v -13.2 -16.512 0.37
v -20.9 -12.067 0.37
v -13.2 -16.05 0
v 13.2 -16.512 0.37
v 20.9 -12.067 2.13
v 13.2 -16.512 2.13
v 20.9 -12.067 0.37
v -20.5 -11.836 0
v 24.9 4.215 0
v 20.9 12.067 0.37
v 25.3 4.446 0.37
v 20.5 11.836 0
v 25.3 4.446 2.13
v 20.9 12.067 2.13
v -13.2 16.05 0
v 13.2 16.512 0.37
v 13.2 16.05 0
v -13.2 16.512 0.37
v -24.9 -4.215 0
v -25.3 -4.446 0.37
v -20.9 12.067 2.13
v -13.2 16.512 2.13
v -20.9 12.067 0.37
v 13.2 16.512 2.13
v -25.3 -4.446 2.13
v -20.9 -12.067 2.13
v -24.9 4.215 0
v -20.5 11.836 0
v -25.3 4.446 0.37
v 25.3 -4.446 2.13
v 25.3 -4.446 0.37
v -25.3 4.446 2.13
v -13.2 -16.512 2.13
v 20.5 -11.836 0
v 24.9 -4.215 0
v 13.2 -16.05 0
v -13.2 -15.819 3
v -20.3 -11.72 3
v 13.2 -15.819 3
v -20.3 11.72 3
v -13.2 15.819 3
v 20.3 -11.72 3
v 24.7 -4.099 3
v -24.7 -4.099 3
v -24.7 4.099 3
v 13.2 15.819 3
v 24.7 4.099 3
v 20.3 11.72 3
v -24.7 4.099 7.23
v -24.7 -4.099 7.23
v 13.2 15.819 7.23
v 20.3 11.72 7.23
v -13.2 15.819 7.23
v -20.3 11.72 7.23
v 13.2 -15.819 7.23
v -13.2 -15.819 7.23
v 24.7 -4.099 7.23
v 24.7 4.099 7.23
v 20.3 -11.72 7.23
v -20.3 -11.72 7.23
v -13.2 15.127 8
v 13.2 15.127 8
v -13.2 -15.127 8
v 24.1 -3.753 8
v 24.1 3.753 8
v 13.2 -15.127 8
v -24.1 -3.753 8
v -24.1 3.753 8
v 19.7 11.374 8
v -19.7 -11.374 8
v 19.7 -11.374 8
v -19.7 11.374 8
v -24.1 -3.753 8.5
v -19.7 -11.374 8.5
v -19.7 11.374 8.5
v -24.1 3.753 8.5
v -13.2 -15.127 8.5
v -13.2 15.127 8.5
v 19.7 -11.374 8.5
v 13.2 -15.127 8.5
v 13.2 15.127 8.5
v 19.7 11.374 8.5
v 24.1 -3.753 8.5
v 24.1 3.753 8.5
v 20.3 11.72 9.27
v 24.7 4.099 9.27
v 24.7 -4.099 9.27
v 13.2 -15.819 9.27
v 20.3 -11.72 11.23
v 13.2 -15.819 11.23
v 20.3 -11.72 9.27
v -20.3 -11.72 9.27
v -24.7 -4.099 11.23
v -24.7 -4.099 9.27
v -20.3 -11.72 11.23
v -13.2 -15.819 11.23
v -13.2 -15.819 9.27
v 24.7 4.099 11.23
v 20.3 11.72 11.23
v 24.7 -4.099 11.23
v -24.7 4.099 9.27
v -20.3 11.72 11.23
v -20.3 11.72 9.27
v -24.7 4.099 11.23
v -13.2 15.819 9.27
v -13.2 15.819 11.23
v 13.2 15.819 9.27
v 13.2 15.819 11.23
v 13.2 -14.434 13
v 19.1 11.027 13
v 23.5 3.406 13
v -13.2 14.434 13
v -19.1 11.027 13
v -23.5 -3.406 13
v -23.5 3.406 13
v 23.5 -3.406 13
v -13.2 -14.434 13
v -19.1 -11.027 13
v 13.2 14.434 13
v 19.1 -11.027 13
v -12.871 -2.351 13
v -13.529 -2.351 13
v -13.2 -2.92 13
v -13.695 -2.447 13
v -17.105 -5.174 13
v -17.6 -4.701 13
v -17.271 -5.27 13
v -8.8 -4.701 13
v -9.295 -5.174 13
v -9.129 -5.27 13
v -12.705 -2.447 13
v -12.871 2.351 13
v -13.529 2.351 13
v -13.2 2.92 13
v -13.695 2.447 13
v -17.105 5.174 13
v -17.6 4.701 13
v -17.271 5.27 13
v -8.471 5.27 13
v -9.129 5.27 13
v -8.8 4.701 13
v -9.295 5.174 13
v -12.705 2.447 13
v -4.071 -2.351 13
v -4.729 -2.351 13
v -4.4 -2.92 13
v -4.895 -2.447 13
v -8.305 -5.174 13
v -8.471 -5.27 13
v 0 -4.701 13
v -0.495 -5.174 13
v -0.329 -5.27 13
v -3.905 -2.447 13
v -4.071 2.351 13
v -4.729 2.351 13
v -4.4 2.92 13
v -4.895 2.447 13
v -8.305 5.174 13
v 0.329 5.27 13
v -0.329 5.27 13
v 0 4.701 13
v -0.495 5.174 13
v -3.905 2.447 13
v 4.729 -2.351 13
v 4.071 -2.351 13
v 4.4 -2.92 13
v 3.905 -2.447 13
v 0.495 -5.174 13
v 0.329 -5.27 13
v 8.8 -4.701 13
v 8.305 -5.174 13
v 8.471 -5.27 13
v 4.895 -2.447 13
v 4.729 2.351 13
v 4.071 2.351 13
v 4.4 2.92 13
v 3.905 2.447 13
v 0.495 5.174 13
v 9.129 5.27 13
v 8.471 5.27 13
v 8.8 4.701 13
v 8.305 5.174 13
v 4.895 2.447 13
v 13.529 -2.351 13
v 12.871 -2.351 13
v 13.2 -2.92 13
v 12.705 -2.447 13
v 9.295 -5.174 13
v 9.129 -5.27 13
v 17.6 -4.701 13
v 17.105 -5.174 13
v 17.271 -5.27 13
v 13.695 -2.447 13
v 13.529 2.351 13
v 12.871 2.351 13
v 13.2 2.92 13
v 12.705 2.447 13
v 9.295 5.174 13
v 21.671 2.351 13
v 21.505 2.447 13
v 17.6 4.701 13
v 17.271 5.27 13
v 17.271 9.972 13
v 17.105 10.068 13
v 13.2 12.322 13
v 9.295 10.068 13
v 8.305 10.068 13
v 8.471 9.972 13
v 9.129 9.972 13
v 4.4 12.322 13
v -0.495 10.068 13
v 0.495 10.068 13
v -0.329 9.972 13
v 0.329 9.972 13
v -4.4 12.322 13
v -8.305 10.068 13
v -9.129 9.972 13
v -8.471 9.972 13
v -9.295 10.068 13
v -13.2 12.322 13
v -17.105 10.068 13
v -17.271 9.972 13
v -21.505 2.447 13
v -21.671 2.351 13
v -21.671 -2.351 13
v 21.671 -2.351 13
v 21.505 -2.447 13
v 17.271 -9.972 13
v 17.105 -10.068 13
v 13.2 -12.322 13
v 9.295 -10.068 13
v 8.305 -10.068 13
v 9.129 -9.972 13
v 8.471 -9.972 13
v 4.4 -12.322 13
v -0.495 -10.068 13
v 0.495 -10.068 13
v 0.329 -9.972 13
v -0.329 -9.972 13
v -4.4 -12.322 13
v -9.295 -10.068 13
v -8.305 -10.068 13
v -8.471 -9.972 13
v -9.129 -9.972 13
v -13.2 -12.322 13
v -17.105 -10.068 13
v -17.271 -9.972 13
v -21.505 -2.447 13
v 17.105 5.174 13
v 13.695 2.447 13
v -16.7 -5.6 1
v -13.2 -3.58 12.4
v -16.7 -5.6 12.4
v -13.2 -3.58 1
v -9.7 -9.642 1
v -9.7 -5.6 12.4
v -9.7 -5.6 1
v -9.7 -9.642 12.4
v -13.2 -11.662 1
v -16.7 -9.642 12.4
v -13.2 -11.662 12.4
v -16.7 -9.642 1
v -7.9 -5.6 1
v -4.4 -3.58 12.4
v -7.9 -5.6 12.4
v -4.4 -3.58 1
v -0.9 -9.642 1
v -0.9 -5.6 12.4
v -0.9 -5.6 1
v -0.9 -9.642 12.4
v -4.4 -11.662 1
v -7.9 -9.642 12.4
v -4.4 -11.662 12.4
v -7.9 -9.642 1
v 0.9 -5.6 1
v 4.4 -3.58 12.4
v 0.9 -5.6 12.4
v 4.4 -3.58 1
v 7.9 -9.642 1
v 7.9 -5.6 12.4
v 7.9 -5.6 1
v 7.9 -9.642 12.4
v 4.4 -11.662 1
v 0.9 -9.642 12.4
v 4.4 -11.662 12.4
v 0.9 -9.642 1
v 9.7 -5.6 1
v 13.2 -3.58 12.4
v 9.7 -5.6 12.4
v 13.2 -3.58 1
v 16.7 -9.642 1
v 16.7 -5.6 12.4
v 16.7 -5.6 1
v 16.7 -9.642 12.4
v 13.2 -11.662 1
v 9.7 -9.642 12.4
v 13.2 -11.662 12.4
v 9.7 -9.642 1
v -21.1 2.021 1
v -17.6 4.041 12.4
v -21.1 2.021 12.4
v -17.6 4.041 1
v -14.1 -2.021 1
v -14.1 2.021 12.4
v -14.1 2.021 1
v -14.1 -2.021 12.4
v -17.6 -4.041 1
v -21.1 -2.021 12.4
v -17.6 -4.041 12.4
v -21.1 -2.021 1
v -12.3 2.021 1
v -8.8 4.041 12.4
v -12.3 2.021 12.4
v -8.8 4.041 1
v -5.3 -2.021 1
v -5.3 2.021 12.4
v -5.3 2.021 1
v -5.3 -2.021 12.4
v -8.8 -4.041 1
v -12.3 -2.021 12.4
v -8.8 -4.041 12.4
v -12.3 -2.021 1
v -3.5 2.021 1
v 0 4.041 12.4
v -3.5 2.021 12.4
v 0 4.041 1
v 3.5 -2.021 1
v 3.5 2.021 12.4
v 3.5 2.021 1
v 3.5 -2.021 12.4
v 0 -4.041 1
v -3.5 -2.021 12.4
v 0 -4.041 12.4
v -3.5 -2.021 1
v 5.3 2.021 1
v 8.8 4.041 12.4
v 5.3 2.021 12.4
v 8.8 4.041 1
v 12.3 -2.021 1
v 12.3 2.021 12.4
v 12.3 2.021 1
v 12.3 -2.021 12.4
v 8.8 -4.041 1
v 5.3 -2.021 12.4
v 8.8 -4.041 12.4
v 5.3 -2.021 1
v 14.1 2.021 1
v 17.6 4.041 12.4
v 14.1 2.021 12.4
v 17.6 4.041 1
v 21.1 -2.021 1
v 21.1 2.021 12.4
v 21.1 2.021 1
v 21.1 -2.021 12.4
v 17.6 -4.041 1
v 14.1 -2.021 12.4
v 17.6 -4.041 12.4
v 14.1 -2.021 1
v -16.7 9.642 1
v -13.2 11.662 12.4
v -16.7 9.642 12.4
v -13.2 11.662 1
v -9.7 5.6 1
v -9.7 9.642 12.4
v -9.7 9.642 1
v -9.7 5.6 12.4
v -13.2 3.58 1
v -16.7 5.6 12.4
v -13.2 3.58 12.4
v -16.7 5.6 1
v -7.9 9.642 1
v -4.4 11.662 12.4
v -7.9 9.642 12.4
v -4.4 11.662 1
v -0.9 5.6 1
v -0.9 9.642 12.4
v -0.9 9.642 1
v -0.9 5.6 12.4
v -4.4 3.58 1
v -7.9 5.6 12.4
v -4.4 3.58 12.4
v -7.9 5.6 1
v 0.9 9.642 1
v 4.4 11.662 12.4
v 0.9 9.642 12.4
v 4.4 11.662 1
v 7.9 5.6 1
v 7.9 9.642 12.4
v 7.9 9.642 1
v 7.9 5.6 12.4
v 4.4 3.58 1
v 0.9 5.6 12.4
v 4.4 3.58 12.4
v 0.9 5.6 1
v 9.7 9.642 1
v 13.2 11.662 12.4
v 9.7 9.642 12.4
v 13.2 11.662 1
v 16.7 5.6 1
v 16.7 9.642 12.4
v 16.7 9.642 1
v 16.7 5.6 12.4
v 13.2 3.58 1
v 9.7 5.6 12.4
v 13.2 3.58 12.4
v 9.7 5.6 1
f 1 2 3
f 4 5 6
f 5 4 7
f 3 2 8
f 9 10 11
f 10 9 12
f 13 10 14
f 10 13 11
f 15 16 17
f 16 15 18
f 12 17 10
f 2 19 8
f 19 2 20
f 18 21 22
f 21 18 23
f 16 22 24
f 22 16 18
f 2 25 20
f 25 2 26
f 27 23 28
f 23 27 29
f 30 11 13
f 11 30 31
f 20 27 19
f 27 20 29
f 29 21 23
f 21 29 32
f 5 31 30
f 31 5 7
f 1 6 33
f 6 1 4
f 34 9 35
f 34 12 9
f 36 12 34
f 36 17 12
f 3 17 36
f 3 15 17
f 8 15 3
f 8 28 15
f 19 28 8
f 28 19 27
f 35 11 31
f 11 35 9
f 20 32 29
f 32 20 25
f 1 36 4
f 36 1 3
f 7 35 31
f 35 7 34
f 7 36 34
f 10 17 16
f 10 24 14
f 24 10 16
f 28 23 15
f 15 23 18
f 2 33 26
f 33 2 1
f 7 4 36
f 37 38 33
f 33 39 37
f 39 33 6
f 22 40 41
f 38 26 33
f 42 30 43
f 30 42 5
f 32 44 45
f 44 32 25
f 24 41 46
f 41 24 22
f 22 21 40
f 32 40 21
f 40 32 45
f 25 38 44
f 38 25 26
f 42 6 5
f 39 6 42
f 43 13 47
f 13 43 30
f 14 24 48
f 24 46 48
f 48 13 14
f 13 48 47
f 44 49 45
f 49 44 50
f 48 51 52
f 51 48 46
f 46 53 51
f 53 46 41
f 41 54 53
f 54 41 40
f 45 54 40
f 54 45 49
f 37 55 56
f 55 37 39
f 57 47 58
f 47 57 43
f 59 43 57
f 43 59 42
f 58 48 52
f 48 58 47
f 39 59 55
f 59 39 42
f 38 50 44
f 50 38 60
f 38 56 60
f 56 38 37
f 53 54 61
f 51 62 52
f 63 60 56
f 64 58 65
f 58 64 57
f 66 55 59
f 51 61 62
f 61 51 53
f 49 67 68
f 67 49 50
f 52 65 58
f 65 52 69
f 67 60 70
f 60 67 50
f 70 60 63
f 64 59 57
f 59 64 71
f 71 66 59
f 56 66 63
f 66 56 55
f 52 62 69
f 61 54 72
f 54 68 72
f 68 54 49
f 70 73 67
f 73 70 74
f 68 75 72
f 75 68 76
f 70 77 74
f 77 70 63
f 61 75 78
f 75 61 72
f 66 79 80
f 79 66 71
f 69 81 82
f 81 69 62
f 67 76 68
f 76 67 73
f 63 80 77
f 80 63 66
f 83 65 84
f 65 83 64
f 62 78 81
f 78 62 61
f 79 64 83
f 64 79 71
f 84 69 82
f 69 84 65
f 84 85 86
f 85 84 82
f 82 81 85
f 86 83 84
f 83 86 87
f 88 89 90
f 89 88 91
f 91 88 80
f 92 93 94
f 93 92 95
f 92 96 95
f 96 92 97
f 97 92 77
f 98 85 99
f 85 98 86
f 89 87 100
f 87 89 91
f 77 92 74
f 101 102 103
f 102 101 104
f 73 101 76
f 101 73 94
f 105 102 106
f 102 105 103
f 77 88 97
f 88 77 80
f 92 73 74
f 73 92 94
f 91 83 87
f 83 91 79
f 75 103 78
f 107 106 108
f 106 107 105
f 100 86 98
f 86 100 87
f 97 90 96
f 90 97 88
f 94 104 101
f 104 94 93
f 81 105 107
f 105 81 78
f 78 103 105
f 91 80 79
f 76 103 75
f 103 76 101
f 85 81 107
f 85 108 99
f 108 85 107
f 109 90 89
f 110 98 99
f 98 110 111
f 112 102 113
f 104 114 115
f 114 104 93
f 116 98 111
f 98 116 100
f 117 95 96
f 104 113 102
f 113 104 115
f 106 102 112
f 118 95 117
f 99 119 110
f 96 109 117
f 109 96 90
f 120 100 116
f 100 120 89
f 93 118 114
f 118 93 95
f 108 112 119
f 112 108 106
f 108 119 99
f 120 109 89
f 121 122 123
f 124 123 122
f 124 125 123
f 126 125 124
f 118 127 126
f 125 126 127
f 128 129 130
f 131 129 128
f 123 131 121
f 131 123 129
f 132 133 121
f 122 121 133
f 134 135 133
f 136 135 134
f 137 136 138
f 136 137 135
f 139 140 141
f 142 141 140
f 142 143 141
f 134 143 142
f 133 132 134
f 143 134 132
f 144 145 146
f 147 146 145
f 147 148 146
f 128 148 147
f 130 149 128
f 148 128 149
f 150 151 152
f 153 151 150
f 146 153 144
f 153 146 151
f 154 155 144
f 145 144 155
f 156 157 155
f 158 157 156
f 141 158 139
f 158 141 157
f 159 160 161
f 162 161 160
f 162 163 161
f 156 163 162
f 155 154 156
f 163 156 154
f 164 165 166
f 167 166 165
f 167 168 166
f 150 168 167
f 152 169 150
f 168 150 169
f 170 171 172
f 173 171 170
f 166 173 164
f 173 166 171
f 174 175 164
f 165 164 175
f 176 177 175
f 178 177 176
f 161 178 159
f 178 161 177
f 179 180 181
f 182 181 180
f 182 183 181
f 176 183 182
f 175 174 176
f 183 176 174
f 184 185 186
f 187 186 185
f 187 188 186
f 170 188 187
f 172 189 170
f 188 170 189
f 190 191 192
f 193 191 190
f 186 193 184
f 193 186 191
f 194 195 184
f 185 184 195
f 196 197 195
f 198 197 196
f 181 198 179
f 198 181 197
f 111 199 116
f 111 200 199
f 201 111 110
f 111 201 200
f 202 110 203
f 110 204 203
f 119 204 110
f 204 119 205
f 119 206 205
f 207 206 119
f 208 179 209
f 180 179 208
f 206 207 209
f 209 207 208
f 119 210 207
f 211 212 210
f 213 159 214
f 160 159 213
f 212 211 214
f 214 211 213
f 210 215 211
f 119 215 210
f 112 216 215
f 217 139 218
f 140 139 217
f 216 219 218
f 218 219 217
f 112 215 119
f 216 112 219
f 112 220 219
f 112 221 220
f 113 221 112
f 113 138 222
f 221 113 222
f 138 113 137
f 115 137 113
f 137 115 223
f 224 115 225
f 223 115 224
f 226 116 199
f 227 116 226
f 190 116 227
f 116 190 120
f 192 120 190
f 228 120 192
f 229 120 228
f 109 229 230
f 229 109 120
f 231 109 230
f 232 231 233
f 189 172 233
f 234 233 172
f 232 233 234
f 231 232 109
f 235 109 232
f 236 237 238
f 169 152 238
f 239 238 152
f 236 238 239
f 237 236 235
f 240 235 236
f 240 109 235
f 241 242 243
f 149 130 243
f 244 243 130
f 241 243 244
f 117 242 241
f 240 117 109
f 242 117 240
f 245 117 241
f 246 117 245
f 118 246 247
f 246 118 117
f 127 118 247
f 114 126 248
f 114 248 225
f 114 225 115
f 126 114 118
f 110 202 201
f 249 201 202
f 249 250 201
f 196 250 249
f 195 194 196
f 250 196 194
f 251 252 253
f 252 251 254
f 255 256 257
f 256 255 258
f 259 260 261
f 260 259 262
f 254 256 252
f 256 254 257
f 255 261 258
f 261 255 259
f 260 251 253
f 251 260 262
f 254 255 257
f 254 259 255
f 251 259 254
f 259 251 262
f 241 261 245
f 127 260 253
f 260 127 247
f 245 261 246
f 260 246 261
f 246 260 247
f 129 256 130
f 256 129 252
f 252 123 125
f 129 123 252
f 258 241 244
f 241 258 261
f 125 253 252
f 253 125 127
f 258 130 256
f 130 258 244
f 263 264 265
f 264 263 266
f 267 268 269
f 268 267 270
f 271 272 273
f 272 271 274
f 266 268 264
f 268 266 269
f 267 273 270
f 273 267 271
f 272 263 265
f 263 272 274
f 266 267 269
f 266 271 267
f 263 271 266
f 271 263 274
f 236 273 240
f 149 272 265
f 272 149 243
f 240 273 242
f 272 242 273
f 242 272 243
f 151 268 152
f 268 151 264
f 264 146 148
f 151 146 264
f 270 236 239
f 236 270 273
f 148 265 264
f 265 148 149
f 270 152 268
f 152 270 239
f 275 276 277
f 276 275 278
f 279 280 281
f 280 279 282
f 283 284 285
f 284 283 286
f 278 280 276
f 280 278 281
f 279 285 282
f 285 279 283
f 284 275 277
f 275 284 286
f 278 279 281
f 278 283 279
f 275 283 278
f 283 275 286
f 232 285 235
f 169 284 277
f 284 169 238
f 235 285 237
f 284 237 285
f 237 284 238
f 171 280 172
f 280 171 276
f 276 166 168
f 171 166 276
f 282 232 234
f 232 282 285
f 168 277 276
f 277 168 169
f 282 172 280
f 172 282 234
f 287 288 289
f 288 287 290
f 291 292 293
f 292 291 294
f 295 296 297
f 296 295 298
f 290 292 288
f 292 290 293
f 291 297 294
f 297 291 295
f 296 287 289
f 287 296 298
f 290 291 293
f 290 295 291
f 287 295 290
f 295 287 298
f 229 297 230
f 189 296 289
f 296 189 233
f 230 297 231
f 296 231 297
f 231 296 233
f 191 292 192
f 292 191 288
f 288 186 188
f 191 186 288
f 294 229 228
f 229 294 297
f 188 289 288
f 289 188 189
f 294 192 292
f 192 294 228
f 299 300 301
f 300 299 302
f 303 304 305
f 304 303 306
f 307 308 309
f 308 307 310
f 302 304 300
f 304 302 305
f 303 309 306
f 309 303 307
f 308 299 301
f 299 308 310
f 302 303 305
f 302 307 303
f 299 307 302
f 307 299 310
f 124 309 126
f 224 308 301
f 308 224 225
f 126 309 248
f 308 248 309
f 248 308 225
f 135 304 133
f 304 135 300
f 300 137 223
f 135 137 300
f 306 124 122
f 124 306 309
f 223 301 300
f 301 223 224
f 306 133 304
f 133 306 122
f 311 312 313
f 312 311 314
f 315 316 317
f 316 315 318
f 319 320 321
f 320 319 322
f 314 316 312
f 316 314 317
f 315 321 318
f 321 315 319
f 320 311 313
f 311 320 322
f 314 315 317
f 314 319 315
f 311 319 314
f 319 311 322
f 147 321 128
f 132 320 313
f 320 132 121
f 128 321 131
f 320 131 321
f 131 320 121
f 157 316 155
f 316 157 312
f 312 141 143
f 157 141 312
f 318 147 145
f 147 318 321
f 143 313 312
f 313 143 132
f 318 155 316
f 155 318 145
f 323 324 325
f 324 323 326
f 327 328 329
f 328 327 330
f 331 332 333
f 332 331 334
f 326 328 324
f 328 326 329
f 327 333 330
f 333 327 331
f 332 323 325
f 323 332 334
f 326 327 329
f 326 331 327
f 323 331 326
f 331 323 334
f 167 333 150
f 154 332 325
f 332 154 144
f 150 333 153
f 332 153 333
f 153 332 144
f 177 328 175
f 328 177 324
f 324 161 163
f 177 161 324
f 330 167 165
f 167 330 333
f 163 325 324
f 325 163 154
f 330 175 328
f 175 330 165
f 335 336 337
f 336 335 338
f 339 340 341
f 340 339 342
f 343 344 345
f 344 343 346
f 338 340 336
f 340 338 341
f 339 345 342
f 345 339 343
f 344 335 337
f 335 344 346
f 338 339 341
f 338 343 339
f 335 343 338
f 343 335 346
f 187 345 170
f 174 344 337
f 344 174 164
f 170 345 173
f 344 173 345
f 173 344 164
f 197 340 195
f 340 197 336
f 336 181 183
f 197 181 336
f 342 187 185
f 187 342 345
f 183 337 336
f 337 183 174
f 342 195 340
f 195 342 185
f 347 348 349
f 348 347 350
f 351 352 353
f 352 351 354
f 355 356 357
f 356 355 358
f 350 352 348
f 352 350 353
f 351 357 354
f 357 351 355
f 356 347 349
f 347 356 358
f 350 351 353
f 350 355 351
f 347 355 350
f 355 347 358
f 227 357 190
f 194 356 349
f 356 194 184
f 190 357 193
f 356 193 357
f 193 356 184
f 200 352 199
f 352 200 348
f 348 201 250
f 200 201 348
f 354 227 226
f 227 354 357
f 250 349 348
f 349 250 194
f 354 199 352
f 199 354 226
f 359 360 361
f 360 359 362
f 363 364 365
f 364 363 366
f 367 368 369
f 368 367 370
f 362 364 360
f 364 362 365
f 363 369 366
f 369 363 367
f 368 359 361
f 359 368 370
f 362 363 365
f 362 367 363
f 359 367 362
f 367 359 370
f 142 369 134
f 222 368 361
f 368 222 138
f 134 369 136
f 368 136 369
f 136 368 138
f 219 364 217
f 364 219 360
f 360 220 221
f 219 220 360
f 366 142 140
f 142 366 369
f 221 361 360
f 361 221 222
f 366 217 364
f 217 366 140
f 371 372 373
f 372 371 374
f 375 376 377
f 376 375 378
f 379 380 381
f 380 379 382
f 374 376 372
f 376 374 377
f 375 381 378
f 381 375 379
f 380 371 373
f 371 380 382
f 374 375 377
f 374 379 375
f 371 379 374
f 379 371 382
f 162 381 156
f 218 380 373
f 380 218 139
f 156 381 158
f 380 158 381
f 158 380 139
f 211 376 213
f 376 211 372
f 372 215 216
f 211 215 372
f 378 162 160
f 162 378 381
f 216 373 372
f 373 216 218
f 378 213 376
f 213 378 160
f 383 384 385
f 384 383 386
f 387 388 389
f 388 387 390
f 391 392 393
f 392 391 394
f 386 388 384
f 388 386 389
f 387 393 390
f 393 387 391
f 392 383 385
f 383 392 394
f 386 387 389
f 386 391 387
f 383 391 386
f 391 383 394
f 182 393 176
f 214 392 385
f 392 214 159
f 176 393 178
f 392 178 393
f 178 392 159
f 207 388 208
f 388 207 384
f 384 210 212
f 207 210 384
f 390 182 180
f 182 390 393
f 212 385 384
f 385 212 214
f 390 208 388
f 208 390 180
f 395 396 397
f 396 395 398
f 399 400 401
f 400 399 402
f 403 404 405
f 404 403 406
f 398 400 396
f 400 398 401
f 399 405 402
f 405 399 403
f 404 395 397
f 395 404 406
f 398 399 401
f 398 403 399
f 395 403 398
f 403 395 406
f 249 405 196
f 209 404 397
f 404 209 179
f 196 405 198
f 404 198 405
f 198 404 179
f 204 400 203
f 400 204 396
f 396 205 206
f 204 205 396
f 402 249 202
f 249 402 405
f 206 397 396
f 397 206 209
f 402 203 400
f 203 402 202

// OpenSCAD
// Dense contoured hex-bit stand, v6
// 13 pockets in a compact 4-5-4 triangular/hexagonal lattice.
// Dense derivative of v3, preserving its contoured/faceted outer-wall styling.
// Designed for a 0.6 mm nozzle and support-free FDM printing.
// Units: millimetres.

$fn = 48;

// ---------- Pocket layout ----------
row_counts = [4, 5, 4];
total_pockets = 13;

hex_flat_to_flat = 7.0;       // functional pocket size
pocket_depth = 12.0;
base_thickness = 1.0;
pocket_mouth_chamfer_h = 0.6;
pocket_mouth_flat_to_flat = 8.2;

// Dense true-triangular lattice.
// 8.8 mm nearest-neighbour pitch leaves:
// - 1.8 mm between the straight 7.0 mm AF pocket sections
// - 0.6 mm between the 8.2 mm AF lead-in mouths at the top surface
pitch = 8.8;
pitch_x = pitch;
pitch_y = pitch * sqrt(3) / 2;

// ---------- Contoured body ----------
// Keep the v3 outer-wall proportions and styling while shrinking the cluster.
wall_margin = 3.0;             // five 0.6 mm nozzle widths
body_h = pocket_depth + base_thickness; // 13.0 mm

// v3-style side-wall detailing.
foot_flare = 0.6;
lower_edge_chamfer = 0.4;       // soften the bottom perimeter with a 45-degree chamfer
waist_inset = 0.6;
top_chamfer_inset = 1.2;

// Z stations for the faceted/tapered wall profile.
z0 = 0.00;
z_lower_chamfer_top = lower_edge_chamfer;
z_foot_top = 2.10;              // v5 lip was 0.90 mm; increased by 1.20 mm
z_foot_blend = 3.00;            // preserve the original 0.90 mm return-to-wall blend
z_waist_start = 7.20;
z_waist_low = 8.00;
z_waist_high = 8.50;
z_waist_end = 9.30;
z_chamfer_start = 11.20;
z_top = body_h;

// ---------- Derived ----------
hex_r = hex_flat_to_flat / sqrt(3);
mouth_hex_r = pocket_mouth_flat_to_flat / sqrt(3);
minimum_top_web = pitch - pocket_mouth_flat_to_flat;
minimum_straight_web = pitch - hex_flat_to_flat;

module pocket_hex_2d(r) {
    rotate(30)
        circle(r = r, $fn = 6);
}

module pocket_cluster_2d() {
    union() {
        for (ri = [0 : len(row_counts)-1]) {
            count = row_counts[ri];
            y = (ri - (len(row_counts)-1)/2) * pitch_y;
            for (ci = [0 : count-1]) {
                // Alternating 4/5/4 rows naturally stagger by half a pitch.
                x = (ci - (count-1)/2) * pitch_x;
                translate([x, y])
                    pocket_hex_2d(mouth_hex_r);
            }
        }
    }
}

// Body outline follows the union of the outermost pocket mouths.
module body_profile_2d(extra = 0) {
    offset(delta = wall_margin + extra)
        pocket_cluster_2d();
}

module profile_slice(z, extra, thickness = 0.03) {
    translate([0, 0, z])
        linear_extrude(height = thickness)
            body_profile_2d(extra);
}

module loft_segment(z1, extra1, z2, extra2) {
    hull() {
        profile_slice(z1, extra1);
        profile_slice(z2 - 0.03, extra2);
    }
}

module styled_body() {
    union() {
        // Softer lower lip: 0.4 mm x 0.4 mm 45-degree chamfer at the bottom edge,
        // followed by a taller flared plinth. The outer lip height is 1.2 mm
        // greater than v5 while the overall stand height and pocket geometry stay unchanged.
        loft_segment(z0, foot_flare - lower_edge_chamfer,
                     z_lower_chamfer_top, foot_flare);
        loft_segment(z_lower_chamfer_top, foot_flare,
                     z_foot_top, foot_flare);
        loft_segment(z_foot_top, foot_flare, z_foot_blend, 0);

        // Main wall.
        loft_segment(z_foot_blend, 0, z_waist_start, 0);

        // Shallow recessed faceted belt around the outer wall.
        loft_segment(z_waist_start, 0, z_waist_low, -waist_inset);
        loft_segment(z_waist_low, -waist_inset, z_waist_high, -waist_inset);
        loft_segment(z_waist_high, -waist_inset, z_waist_end, 0);

        // Upper wall and top chamfer.
        loft_segment(z_waist_end, 0, z_chamfer_start, 0);
        loft_segment(z_chamfer_start, 0, z_top, -top_chamfer_inset);
    }
}

module hex_prism(r, h) {
    linear_extrude(height = h)
        pocket_hex_2d(r);
}

module bit_pocket() {
    // Straight 7.0 mm AF section begins exactly 1.0 mm above the print bed.
    translate([0, 0, base_thickness])
        hex_prism(hex_r, pocket_depth - pocket_mouth_chamfer_h + 0.08);

    // 0.6 mm lead-in taper. Functional pocket below remains 7.0 mm AF.
    hull() {
        translate([0, 0, body_h - pocket_mouth_chamfer_h])
            hex_prism(hex_r, 0.03);
        translate([0, 0, body_h + 0.03])
            hex_prism(mouth_hex_r, 0.03);
    }
}

module all_pockets() {
    for (ri = [0 : len(row_counts)-1]) {
        count = row_counts[ri];
        y = (ri - (len(row_counts)-1)/2) * pitch_y;
        for (ci = [0 : count-1]) {
            x = (ci - (count-1)/2) * pitch_x;
            translate([x, y, 0])
                bit_pocket();
        }
    }
}

module stand() {
    difference() {
        styled_body();
        all_pockets();
    }
}

// ---------- Sanity checks ----------
assert(total_pockets == 13, "This variant is specifically the dense 13-pocket stand");
assert(lower_edge_chamfer > 0 && lower_edge_chamfer <= foot_flare,
       "Lower-edge chamfer must fit within the flared foot");
assert(abs(z_lower_chamfer_top - lower_edge_chamfer) < 0.001,
       "Lower-edge chamfer is intended to remain 45 degrees");
assert(abs((body_h - pocket_depth) - base_thickness) < 0.001,
       "Pocket depth/base thickness relationship is inconsistent");
assert(base_thickness >= 1.0,
       "Base thickness below 1.0 mm is not recommended");
assert(minimum_top_web >= 0.6 - 0.001,
       "Top web between adjacent pocket mouths is below one 0.6 mm line");
assert(minimum_straight_web >= 1.8 - 0.001,
       "Straight pocket web is below three 0.6 mm lines");
assert(wall_margin - top_chamfer_inset >= 1.8 - 0.001,
       "Top outer rim should remain at least three 0.6 mm lines wide");
assert(wall_margin - waist_inset >= 1.8 - 0.001,
       "Waist band leaves too little outer-wall material");
assert(pocket_mouth_flat_to_flat >= hex_flat_to_flat,
       "Pocket mouth must not be smaller than the straight pocket");

stand();
